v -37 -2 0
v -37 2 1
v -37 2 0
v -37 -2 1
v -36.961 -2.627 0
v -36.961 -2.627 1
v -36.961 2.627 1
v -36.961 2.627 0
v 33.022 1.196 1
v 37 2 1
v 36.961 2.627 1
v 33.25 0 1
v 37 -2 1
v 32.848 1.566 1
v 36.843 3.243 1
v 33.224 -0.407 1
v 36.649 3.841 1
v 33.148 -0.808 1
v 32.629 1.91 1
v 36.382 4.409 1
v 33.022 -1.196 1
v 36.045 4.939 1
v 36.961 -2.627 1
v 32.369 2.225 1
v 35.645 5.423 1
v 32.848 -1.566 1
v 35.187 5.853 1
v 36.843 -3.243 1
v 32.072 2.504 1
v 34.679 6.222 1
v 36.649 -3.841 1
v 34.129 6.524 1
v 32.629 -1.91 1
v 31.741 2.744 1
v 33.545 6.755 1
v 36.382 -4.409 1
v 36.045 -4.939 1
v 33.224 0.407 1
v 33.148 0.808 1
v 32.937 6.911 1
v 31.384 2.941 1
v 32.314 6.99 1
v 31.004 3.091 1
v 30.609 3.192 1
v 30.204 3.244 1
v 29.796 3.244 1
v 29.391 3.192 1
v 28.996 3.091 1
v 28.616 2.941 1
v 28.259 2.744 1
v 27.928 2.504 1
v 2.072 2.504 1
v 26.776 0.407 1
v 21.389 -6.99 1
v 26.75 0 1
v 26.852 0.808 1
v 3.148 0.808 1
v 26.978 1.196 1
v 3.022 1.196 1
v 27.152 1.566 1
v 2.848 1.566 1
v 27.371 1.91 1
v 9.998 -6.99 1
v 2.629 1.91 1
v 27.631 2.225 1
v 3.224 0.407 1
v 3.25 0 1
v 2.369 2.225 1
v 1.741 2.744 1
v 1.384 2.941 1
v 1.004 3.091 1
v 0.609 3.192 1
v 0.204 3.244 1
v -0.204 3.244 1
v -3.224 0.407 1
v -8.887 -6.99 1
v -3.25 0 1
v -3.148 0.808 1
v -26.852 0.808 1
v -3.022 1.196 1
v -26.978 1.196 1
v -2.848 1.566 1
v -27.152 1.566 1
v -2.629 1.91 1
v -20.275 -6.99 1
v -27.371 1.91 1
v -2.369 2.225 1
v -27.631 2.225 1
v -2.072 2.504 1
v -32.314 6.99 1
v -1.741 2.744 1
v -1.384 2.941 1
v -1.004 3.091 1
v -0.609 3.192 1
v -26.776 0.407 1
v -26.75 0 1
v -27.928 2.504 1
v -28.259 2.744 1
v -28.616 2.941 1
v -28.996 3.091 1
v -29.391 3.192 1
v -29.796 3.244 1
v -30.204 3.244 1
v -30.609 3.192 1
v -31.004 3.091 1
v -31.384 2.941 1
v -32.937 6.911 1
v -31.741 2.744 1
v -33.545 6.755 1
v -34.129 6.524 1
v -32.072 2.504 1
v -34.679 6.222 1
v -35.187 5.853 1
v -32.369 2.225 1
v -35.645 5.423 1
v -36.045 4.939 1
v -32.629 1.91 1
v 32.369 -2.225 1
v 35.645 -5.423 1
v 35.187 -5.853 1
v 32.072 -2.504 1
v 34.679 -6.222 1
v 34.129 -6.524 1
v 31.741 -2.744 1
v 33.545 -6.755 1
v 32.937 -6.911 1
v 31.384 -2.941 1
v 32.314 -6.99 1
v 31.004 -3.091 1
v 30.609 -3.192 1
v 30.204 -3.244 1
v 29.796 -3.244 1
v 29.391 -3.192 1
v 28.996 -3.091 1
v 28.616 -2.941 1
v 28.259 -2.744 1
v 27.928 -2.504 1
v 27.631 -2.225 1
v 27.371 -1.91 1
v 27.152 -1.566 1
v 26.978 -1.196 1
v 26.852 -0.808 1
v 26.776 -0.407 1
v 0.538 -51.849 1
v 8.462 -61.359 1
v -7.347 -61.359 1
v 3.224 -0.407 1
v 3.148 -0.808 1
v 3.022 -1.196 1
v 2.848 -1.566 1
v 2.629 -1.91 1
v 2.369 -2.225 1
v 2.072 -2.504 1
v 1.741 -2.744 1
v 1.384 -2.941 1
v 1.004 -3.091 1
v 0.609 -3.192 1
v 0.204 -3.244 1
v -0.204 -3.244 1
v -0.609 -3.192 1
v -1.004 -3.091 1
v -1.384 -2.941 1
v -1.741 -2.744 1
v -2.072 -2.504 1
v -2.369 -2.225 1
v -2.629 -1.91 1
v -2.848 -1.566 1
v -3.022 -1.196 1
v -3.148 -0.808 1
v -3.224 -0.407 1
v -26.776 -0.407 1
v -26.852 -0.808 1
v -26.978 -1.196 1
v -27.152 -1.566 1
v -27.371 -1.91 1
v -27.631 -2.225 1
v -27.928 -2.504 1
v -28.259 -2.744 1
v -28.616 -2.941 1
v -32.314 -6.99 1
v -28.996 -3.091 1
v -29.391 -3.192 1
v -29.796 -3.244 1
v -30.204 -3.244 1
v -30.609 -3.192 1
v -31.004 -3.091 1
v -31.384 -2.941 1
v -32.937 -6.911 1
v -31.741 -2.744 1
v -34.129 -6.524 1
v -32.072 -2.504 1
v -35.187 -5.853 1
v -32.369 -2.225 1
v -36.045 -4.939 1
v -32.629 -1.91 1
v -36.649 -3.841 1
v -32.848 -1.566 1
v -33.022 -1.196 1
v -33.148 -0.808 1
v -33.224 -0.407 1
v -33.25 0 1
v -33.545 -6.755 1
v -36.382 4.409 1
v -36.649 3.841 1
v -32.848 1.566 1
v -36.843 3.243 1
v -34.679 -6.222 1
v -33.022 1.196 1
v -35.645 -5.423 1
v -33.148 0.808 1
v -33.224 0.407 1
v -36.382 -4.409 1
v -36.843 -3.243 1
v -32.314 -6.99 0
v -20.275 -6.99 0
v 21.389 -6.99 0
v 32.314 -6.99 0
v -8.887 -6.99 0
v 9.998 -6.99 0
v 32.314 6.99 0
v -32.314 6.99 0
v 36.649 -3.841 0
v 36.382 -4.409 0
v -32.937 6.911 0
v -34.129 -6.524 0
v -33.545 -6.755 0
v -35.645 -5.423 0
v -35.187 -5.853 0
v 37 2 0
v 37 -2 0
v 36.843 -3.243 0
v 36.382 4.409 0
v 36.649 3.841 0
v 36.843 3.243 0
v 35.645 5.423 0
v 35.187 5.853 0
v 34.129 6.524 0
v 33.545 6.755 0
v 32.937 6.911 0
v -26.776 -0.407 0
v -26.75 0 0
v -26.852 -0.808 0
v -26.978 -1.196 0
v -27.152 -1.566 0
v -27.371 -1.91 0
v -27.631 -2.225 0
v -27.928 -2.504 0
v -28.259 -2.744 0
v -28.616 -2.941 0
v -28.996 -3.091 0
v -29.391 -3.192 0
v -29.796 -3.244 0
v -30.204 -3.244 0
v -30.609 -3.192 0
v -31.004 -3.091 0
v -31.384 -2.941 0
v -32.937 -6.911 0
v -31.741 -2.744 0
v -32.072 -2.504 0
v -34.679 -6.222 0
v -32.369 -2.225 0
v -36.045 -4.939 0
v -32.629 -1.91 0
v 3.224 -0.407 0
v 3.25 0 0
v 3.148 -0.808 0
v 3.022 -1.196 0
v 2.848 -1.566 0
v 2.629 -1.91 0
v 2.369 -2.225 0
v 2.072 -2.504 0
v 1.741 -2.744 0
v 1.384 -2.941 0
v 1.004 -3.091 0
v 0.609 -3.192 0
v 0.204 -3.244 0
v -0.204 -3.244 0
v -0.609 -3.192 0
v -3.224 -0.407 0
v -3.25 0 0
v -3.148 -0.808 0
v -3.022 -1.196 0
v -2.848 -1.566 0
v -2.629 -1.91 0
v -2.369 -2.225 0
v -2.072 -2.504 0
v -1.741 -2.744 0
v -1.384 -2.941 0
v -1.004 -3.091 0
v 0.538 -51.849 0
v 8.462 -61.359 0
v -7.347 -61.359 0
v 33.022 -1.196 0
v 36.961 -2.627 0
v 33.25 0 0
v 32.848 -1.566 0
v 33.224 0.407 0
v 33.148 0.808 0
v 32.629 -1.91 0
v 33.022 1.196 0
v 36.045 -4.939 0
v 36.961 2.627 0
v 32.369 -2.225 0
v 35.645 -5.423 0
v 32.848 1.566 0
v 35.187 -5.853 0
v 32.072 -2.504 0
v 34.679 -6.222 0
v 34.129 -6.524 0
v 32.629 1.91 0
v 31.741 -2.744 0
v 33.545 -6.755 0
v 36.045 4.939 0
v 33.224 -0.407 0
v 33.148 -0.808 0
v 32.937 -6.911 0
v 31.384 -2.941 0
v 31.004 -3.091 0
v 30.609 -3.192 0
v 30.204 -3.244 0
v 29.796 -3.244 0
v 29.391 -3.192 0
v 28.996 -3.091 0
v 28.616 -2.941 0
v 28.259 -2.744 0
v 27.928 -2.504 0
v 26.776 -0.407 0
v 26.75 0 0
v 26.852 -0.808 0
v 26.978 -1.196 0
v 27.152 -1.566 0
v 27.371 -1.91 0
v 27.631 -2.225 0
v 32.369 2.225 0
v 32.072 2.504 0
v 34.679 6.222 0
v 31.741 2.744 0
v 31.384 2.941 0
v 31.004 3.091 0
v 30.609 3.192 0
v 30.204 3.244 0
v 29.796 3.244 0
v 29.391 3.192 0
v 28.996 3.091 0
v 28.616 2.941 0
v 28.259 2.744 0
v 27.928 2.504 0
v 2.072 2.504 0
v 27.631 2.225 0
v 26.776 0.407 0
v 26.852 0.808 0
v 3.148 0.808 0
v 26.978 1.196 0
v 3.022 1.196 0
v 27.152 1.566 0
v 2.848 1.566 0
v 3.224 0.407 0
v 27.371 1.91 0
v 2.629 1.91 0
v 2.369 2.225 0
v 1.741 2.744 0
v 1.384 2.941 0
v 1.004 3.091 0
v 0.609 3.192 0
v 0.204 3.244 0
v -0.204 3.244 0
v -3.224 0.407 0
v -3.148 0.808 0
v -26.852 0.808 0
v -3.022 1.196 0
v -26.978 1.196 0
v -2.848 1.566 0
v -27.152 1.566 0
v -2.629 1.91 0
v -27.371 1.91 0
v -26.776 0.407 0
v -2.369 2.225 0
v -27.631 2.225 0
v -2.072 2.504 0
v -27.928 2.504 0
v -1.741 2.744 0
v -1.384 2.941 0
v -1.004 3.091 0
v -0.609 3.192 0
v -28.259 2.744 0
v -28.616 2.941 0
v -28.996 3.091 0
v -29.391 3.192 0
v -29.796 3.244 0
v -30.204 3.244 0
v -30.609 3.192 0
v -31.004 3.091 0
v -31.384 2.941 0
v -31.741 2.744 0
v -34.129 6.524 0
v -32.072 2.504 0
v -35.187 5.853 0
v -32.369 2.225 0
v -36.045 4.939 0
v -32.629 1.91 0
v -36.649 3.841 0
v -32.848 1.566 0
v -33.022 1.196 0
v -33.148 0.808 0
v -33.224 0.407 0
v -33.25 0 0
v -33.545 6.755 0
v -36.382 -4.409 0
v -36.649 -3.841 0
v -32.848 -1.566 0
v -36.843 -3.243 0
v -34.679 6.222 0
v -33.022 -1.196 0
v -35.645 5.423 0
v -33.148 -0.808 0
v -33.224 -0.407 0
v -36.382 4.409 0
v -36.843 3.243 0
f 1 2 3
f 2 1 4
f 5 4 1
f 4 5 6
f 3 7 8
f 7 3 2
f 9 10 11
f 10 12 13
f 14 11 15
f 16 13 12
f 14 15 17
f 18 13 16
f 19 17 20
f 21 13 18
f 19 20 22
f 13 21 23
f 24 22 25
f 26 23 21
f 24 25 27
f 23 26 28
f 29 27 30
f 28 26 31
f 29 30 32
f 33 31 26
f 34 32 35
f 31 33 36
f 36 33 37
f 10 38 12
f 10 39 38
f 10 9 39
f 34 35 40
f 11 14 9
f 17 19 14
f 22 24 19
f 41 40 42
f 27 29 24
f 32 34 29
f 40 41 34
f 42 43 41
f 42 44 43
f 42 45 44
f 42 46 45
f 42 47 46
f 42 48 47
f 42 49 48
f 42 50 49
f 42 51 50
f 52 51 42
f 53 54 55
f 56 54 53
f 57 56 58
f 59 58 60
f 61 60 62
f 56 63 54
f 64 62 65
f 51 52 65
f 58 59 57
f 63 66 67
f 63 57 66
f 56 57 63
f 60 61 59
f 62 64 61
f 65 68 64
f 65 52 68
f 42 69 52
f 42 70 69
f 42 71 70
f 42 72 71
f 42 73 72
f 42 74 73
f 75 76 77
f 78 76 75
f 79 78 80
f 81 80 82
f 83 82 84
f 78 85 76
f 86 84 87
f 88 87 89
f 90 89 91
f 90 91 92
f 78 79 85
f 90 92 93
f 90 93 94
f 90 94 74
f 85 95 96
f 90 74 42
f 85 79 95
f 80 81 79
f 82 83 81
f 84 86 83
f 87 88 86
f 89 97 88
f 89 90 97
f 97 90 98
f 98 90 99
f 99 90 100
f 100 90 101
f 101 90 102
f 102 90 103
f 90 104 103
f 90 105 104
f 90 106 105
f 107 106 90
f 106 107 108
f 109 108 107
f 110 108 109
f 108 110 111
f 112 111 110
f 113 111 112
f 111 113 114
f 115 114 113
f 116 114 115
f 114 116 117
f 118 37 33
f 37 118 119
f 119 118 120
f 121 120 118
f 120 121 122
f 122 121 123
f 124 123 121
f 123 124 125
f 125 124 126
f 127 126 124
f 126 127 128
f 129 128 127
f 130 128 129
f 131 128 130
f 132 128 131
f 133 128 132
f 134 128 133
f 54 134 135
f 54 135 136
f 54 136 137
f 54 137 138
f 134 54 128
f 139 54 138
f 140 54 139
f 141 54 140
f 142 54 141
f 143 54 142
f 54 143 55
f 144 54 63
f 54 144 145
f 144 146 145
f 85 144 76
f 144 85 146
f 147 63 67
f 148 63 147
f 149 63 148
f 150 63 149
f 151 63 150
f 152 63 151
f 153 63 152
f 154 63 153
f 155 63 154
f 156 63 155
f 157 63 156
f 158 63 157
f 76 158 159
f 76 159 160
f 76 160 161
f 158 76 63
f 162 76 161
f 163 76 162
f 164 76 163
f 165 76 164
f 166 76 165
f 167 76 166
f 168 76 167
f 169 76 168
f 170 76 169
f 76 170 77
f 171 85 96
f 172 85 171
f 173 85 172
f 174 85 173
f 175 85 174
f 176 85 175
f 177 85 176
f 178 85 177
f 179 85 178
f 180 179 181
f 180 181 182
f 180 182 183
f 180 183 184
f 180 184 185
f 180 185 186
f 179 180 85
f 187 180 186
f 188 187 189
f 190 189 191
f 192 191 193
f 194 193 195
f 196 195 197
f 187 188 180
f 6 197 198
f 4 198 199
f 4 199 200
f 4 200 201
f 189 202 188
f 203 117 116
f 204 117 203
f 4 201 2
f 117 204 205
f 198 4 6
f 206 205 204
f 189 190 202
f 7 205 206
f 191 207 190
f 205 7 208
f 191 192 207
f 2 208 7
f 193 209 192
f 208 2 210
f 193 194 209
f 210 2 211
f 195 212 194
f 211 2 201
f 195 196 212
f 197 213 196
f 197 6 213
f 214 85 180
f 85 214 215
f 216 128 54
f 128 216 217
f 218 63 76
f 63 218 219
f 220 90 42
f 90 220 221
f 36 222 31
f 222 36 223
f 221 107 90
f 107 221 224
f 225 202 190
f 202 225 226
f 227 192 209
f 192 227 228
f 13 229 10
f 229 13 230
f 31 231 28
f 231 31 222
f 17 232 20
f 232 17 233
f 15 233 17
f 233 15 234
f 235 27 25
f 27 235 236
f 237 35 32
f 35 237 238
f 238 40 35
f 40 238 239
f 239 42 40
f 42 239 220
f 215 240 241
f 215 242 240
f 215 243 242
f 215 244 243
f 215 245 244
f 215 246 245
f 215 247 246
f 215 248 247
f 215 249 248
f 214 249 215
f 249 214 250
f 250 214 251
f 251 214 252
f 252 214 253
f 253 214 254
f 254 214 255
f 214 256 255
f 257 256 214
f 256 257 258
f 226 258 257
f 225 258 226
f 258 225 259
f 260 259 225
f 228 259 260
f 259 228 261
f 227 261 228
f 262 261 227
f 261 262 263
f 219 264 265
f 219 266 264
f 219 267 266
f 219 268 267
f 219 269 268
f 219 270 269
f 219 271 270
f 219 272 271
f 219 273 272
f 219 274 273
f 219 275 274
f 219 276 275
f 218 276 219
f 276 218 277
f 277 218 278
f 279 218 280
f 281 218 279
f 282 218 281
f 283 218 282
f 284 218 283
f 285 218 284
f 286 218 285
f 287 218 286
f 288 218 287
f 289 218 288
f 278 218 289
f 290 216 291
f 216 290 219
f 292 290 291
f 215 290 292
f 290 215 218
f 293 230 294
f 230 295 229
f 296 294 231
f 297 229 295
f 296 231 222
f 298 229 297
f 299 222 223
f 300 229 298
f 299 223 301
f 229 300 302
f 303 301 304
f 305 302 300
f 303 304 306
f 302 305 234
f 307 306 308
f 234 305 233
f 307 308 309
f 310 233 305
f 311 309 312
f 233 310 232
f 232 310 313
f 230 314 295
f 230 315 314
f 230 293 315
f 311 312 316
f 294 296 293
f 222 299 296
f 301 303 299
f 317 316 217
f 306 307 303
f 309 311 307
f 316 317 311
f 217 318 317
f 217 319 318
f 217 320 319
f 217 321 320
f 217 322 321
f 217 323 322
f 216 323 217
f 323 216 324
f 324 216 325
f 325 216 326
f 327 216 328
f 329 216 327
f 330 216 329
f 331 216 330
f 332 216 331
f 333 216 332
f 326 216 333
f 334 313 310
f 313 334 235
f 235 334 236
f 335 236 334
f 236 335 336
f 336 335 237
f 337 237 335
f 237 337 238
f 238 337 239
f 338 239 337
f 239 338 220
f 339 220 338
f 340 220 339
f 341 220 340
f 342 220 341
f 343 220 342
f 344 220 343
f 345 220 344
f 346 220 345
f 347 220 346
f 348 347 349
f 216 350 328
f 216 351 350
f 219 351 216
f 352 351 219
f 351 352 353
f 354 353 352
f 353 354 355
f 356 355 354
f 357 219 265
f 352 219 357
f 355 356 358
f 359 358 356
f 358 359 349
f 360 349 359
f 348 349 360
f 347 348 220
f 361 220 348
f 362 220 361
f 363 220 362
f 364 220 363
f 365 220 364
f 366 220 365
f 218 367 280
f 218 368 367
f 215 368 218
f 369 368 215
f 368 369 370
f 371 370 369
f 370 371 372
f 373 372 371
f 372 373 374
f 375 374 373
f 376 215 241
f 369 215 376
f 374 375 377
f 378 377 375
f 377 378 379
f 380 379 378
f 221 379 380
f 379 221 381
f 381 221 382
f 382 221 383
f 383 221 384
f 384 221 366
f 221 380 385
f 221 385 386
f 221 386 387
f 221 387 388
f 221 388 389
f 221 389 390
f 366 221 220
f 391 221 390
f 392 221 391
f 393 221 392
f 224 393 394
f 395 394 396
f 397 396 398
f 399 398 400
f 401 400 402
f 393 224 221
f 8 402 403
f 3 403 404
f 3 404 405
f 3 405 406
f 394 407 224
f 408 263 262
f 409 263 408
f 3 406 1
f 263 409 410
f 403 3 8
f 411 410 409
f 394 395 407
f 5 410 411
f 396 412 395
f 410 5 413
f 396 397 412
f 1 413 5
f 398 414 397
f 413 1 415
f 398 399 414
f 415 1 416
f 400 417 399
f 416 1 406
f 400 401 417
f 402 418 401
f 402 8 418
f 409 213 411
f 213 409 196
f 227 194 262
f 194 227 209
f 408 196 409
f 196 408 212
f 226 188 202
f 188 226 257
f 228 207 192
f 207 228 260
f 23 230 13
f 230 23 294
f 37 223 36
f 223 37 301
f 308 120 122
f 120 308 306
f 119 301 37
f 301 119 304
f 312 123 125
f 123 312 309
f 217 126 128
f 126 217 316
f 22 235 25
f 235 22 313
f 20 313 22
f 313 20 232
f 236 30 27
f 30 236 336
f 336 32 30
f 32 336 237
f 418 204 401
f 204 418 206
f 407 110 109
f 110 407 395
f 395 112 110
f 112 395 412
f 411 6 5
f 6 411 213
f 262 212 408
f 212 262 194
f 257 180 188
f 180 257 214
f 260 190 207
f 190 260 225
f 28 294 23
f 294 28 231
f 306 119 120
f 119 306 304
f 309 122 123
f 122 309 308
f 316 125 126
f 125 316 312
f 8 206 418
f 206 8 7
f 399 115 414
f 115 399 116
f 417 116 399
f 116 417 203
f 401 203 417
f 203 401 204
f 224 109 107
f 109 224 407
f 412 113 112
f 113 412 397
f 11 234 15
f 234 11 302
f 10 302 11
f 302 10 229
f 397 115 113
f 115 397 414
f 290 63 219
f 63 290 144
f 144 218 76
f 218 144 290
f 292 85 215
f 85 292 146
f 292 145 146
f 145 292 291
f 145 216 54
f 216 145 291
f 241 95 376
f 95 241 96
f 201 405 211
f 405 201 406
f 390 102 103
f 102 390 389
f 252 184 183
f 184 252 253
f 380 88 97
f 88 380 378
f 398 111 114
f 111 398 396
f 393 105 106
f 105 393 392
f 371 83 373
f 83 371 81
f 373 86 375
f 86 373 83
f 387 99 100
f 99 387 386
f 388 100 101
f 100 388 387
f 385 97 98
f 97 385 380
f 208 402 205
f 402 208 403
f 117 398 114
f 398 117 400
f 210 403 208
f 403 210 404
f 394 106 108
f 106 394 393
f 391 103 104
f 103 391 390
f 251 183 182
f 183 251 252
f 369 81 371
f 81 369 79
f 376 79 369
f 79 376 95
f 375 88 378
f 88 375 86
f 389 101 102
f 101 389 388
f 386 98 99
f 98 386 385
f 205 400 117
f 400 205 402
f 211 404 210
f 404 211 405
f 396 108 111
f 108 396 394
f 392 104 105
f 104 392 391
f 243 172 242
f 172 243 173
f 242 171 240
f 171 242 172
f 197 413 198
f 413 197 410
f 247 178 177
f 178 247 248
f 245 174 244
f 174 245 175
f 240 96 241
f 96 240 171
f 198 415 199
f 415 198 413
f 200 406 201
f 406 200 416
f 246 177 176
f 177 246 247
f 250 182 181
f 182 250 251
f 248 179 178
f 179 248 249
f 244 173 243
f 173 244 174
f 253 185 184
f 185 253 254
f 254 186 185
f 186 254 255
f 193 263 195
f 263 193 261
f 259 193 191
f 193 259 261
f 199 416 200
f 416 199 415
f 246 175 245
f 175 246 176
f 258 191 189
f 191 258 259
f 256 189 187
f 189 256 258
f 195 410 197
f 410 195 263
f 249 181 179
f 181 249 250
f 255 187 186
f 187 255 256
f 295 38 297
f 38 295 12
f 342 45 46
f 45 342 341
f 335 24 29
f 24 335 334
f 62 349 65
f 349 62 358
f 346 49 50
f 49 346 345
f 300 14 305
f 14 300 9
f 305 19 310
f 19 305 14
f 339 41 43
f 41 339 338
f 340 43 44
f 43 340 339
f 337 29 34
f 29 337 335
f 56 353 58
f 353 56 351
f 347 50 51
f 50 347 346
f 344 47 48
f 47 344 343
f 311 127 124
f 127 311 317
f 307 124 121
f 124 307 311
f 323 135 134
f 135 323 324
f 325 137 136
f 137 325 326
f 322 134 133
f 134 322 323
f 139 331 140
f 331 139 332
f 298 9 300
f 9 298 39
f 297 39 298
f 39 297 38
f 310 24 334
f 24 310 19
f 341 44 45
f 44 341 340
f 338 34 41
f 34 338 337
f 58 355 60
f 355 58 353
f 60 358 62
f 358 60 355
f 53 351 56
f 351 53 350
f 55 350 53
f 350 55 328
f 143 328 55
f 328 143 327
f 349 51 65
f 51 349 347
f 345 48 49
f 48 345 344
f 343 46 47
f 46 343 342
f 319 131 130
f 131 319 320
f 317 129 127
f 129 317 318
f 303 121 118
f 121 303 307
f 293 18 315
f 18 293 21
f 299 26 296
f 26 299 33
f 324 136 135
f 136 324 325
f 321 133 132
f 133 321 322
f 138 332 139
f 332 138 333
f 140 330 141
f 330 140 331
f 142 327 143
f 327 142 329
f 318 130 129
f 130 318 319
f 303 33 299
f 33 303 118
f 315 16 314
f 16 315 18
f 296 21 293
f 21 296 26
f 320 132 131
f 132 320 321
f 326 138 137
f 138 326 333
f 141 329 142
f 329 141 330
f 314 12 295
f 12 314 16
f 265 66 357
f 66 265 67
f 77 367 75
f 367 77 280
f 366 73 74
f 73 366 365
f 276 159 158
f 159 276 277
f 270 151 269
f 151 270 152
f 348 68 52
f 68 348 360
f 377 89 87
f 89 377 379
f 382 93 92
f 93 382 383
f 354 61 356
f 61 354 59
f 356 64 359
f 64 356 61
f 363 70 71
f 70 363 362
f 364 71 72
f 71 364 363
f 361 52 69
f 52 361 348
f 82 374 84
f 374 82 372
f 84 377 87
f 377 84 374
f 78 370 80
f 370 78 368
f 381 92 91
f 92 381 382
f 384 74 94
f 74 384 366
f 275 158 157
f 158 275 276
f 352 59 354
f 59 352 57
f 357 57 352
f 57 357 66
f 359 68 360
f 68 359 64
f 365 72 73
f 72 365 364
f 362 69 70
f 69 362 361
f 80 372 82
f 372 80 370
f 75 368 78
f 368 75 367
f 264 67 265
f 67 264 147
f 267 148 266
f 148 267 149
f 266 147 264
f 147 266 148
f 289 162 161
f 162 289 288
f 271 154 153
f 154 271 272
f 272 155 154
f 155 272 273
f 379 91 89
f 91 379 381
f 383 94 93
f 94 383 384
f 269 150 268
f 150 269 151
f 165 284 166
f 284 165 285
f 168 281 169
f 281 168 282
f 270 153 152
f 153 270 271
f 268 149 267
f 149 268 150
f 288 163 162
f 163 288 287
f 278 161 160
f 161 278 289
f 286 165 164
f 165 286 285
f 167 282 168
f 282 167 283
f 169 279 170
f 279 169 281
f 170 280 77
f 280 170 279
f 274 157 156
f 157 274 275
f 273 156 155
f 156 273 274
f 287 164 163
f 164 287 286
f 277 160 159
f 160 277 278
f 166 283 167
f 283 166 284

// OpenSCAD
$fn = 50;


difference() {
	union() {
		translate(v = [0, 0, 0]) {
			rotate(a = [0, 0, 0]) {
				hull() {
					translate(v = [-32.0000000000, 2.0000000000, 0]) {
						rotate(a = [0, 0, 0]) {
							translate(v = [0, 0, 0]) {
								rotate(a = [0, 0, 0]) {
									cylinder(h = 1, r = 5);
								}
							}
						}
					}
					translate(v = [32.0000000000, 2.0000000000, 0]) {
						rotate(a = [0, 0, 0]) {
							translate(v = [0, 0, 0]) {
								rotate(a = [0, 0, 0]) {
									cylinder(h = 1, r = 5);
								}
							}
						}
					}
					translate(v = [-32.0000000000, -2.0000000000, 0]) {
						rotate(a = [0, 0, 0]) {
							translate(v = [0, 0, 0]) {
								rotate(a = [0, 0, 0]) {
									cylinder(h = 1, r = 5);
								}
							}
						}
					}
					translate(v = [32.0000000000, -2.0000000000, 0]) {
						rotate(a = [0, 0, 0]) {
							translate(v = [0, 0, 0]) {
								rotate(a = [0, 0, 0]) {
									cylinder(h = 1, r = 5);
								}
							}
						}
					}
				}
			}
		}
		translate(v = [0, -5, 0]) {
			rotate(a = [0, 0, 0]) {
				linear_extrude(height = 1) {
					text(font = "DejaVu Sans Mono:style=Bold", halign = "center", size = 57.0000000000, text = "V", valign = "top");
				}
			}
		}
	}
	union() {
		translate(v = [-30.0000000000, 0.0000000000, -125.0000000000]) {
			rotate(a = [0, 0, 0]) {
				cylinder(h = 250, r = 3.2500000000);
			}
		}
		translate(v = [30.0000000000, 0.0000000000, -125.0000000000]) {
			rotate(a = [0, 0, 0]) {
				cylinder(h = 250, r = 3.2500000000);
			}
		}
		translate(v = [30.0000000000, 0.0000000000, -125.0000000000]) {
			rotate(a = [0, 0, 0]) {
				cylinder(h = 250, r = 3.2500000000);
			}
		}
		translate(v = [0, 0, -125.0000000000]) {
			rotate(a = [0, 0, 0]) {
				cylinder(h = 250, r = 3.2500000000);
			}
		}
	}
}
